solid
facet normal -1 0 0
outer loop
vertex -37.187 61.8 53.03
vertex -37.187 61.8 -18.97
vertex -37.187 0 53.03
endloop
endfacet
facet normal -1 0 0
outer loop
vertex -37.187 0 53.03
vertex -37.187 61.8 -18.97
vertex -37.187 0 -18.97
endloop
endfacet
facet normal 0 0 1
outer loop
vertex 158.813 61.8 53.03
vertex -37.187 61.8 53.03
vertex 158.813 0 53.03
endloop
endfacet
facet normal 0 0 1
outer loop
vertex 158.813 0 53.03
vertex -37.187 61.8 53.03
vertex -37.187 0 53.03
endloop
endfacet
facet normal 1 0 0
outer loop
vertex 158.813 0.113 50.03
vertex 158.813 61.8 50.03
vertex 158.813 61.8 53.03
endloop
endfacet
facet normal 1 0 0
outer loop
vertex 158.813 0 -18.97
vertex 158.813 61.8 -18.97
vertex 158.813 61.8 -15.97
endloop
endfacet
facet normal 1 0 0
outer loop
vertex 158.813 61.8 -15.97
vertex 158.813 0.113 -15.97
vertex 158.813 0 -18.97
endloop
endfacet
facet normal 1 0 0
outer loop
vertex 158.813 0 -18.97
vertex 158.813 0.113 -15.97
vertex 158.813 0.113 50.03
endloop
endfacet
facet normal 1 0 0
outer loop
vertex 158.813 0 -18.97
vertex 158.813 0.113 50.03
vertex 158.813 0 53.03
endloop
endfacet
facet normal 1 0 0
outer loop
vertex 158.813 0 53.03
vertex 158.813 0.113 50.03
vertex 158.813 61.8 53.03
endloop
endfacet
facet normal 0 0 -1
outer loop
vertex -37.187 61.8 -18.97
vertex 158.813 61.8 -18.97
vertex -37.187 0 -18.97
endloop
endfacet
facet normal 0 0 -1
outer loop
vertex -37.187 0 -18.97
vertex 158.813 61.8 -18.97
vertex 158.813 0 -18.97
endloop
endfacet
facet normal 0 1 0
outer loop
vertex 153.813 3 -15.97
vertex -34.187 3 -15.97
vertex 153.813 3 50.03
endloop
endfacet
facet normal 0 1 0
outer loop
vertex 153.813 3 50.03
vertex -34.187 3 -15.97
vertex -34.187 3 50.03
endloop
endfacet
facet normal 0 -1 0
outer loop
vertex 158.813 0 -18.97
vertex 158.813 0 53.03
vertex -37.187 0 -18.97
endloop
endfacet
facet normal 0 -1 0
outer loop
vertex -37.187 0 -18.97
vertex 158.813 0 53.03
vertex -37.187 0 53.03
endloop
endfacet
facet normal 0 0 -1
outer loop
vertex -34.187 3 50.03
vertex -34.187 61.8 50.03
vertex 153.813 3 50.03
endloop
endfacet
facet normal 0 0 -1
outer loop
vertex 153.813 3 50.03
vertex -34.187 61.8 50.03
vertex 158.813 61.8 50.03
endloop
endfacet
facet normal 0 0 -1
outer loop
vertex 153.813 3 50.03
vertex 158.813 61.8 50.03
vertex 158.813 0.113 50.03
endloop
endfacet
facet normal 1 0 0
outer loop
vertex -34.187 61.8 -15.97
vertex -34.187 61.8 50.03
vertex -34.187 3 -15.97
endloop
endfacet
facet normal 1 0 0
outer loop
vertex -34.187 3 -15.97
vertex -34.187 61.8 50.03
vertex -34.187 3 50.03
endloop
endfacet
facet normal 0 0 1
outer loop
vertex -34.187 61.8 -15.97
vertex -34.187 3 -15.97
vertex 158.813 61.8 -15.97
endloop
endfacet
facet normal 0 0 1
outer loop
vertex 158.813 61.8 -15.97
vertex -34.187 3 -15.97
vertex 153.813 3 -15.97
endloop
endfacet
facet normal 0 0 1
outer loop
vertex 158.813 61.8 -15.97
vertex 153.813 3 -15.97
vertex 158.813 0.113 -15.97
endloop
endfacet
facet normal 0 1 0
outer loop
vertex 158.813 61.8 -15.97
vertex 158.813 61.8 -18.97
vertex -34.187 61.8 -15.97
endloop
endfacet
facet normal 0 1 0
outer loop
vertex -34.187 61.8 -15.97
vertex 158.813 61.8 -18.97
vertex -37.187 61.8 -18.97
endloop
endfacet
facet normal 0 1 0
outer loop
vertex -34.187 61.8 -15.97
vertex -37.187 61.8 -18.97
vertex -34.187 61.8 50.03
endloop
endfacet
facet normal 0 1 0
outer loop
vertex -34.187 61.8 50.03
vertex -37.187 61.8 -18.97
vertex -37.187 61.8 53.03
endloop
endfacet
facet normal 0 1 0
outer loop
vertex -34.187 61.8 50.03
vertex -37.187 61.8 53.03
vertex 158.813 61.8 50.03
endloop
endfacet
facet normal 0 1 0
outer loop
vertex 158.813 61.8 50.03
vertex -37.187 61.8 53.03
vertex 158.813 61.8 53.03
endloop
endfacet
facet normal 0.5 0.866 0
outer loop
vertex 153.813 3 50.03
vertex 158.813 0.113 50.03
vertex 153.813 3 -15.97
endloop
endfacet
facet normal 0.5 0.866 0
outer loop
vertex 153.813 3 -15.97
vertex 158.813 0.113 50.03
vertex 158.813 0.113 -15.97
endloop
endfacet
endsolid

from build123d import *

# Parameters (mm, degrees)
ESQUISSE1_W        = 196
ESQUISSE1_H        = 72
BOSS_EXTRU_1_DEPTH = 3
BOSS_EXTRU_2_DEPTH = 58.8
CHANFREIN1_SIZE    = 2.886751346
CHANFREIN1_SIZE2   = 5


with BuildPart() as part:
    # Esquisse1 → Boss.-Extru.1 (new body)
    with BuildSketch(Plane(origin=(0, 0, 0), x_dir=(1, 0, 0), z_dir=(0, 1, 0))):
        with Locations((60.813158837, -17.029685758)):
            Rectangle(ESQUISSE1_W, ESQUISSE1_H)
    extrude(amount=BOSS_EXTRU_1_DEPTH)

    # Esquisse2 → Boss.-Extru.2 (add)
    with BuildSketch(Plane(origin=(0, 3, 0), x_dir=(1, 0, 0), z_dir=(0, 1, 0))):
        Polygon((-37.186841163, 18.970314242), (158.813158837, 18.970314242), (158.813158837, 15.970314242), (-34.186841163, 15.970314242), (-34.186841163, -50.029685758), (158.813158837, -50.029685758), (158.813158837, -53.029685758), (-37.186841163, -53.029685758), align=None)
    extrude(amount=BOSS_EXTRU_2_DEPTH)

    # Chanfrein1
    chanfrein1_edges = [part.edges().sort_by_distance(p)[0] for p in [
        (158.813158837, 3, 17.029685758),
    ]]
    chanfrein1_side = [part.faces().sort_by_distance(p)[0] for p in [
        (158.813158837, 30.9, -18.021460196),
    ]]
    chamfer(chanfrein1_edges, length=CHANFREIN1_SIZE, length2=CHANFREIN1_SIZE2, reference=chanfrein1_side[0])


solid = part.part
